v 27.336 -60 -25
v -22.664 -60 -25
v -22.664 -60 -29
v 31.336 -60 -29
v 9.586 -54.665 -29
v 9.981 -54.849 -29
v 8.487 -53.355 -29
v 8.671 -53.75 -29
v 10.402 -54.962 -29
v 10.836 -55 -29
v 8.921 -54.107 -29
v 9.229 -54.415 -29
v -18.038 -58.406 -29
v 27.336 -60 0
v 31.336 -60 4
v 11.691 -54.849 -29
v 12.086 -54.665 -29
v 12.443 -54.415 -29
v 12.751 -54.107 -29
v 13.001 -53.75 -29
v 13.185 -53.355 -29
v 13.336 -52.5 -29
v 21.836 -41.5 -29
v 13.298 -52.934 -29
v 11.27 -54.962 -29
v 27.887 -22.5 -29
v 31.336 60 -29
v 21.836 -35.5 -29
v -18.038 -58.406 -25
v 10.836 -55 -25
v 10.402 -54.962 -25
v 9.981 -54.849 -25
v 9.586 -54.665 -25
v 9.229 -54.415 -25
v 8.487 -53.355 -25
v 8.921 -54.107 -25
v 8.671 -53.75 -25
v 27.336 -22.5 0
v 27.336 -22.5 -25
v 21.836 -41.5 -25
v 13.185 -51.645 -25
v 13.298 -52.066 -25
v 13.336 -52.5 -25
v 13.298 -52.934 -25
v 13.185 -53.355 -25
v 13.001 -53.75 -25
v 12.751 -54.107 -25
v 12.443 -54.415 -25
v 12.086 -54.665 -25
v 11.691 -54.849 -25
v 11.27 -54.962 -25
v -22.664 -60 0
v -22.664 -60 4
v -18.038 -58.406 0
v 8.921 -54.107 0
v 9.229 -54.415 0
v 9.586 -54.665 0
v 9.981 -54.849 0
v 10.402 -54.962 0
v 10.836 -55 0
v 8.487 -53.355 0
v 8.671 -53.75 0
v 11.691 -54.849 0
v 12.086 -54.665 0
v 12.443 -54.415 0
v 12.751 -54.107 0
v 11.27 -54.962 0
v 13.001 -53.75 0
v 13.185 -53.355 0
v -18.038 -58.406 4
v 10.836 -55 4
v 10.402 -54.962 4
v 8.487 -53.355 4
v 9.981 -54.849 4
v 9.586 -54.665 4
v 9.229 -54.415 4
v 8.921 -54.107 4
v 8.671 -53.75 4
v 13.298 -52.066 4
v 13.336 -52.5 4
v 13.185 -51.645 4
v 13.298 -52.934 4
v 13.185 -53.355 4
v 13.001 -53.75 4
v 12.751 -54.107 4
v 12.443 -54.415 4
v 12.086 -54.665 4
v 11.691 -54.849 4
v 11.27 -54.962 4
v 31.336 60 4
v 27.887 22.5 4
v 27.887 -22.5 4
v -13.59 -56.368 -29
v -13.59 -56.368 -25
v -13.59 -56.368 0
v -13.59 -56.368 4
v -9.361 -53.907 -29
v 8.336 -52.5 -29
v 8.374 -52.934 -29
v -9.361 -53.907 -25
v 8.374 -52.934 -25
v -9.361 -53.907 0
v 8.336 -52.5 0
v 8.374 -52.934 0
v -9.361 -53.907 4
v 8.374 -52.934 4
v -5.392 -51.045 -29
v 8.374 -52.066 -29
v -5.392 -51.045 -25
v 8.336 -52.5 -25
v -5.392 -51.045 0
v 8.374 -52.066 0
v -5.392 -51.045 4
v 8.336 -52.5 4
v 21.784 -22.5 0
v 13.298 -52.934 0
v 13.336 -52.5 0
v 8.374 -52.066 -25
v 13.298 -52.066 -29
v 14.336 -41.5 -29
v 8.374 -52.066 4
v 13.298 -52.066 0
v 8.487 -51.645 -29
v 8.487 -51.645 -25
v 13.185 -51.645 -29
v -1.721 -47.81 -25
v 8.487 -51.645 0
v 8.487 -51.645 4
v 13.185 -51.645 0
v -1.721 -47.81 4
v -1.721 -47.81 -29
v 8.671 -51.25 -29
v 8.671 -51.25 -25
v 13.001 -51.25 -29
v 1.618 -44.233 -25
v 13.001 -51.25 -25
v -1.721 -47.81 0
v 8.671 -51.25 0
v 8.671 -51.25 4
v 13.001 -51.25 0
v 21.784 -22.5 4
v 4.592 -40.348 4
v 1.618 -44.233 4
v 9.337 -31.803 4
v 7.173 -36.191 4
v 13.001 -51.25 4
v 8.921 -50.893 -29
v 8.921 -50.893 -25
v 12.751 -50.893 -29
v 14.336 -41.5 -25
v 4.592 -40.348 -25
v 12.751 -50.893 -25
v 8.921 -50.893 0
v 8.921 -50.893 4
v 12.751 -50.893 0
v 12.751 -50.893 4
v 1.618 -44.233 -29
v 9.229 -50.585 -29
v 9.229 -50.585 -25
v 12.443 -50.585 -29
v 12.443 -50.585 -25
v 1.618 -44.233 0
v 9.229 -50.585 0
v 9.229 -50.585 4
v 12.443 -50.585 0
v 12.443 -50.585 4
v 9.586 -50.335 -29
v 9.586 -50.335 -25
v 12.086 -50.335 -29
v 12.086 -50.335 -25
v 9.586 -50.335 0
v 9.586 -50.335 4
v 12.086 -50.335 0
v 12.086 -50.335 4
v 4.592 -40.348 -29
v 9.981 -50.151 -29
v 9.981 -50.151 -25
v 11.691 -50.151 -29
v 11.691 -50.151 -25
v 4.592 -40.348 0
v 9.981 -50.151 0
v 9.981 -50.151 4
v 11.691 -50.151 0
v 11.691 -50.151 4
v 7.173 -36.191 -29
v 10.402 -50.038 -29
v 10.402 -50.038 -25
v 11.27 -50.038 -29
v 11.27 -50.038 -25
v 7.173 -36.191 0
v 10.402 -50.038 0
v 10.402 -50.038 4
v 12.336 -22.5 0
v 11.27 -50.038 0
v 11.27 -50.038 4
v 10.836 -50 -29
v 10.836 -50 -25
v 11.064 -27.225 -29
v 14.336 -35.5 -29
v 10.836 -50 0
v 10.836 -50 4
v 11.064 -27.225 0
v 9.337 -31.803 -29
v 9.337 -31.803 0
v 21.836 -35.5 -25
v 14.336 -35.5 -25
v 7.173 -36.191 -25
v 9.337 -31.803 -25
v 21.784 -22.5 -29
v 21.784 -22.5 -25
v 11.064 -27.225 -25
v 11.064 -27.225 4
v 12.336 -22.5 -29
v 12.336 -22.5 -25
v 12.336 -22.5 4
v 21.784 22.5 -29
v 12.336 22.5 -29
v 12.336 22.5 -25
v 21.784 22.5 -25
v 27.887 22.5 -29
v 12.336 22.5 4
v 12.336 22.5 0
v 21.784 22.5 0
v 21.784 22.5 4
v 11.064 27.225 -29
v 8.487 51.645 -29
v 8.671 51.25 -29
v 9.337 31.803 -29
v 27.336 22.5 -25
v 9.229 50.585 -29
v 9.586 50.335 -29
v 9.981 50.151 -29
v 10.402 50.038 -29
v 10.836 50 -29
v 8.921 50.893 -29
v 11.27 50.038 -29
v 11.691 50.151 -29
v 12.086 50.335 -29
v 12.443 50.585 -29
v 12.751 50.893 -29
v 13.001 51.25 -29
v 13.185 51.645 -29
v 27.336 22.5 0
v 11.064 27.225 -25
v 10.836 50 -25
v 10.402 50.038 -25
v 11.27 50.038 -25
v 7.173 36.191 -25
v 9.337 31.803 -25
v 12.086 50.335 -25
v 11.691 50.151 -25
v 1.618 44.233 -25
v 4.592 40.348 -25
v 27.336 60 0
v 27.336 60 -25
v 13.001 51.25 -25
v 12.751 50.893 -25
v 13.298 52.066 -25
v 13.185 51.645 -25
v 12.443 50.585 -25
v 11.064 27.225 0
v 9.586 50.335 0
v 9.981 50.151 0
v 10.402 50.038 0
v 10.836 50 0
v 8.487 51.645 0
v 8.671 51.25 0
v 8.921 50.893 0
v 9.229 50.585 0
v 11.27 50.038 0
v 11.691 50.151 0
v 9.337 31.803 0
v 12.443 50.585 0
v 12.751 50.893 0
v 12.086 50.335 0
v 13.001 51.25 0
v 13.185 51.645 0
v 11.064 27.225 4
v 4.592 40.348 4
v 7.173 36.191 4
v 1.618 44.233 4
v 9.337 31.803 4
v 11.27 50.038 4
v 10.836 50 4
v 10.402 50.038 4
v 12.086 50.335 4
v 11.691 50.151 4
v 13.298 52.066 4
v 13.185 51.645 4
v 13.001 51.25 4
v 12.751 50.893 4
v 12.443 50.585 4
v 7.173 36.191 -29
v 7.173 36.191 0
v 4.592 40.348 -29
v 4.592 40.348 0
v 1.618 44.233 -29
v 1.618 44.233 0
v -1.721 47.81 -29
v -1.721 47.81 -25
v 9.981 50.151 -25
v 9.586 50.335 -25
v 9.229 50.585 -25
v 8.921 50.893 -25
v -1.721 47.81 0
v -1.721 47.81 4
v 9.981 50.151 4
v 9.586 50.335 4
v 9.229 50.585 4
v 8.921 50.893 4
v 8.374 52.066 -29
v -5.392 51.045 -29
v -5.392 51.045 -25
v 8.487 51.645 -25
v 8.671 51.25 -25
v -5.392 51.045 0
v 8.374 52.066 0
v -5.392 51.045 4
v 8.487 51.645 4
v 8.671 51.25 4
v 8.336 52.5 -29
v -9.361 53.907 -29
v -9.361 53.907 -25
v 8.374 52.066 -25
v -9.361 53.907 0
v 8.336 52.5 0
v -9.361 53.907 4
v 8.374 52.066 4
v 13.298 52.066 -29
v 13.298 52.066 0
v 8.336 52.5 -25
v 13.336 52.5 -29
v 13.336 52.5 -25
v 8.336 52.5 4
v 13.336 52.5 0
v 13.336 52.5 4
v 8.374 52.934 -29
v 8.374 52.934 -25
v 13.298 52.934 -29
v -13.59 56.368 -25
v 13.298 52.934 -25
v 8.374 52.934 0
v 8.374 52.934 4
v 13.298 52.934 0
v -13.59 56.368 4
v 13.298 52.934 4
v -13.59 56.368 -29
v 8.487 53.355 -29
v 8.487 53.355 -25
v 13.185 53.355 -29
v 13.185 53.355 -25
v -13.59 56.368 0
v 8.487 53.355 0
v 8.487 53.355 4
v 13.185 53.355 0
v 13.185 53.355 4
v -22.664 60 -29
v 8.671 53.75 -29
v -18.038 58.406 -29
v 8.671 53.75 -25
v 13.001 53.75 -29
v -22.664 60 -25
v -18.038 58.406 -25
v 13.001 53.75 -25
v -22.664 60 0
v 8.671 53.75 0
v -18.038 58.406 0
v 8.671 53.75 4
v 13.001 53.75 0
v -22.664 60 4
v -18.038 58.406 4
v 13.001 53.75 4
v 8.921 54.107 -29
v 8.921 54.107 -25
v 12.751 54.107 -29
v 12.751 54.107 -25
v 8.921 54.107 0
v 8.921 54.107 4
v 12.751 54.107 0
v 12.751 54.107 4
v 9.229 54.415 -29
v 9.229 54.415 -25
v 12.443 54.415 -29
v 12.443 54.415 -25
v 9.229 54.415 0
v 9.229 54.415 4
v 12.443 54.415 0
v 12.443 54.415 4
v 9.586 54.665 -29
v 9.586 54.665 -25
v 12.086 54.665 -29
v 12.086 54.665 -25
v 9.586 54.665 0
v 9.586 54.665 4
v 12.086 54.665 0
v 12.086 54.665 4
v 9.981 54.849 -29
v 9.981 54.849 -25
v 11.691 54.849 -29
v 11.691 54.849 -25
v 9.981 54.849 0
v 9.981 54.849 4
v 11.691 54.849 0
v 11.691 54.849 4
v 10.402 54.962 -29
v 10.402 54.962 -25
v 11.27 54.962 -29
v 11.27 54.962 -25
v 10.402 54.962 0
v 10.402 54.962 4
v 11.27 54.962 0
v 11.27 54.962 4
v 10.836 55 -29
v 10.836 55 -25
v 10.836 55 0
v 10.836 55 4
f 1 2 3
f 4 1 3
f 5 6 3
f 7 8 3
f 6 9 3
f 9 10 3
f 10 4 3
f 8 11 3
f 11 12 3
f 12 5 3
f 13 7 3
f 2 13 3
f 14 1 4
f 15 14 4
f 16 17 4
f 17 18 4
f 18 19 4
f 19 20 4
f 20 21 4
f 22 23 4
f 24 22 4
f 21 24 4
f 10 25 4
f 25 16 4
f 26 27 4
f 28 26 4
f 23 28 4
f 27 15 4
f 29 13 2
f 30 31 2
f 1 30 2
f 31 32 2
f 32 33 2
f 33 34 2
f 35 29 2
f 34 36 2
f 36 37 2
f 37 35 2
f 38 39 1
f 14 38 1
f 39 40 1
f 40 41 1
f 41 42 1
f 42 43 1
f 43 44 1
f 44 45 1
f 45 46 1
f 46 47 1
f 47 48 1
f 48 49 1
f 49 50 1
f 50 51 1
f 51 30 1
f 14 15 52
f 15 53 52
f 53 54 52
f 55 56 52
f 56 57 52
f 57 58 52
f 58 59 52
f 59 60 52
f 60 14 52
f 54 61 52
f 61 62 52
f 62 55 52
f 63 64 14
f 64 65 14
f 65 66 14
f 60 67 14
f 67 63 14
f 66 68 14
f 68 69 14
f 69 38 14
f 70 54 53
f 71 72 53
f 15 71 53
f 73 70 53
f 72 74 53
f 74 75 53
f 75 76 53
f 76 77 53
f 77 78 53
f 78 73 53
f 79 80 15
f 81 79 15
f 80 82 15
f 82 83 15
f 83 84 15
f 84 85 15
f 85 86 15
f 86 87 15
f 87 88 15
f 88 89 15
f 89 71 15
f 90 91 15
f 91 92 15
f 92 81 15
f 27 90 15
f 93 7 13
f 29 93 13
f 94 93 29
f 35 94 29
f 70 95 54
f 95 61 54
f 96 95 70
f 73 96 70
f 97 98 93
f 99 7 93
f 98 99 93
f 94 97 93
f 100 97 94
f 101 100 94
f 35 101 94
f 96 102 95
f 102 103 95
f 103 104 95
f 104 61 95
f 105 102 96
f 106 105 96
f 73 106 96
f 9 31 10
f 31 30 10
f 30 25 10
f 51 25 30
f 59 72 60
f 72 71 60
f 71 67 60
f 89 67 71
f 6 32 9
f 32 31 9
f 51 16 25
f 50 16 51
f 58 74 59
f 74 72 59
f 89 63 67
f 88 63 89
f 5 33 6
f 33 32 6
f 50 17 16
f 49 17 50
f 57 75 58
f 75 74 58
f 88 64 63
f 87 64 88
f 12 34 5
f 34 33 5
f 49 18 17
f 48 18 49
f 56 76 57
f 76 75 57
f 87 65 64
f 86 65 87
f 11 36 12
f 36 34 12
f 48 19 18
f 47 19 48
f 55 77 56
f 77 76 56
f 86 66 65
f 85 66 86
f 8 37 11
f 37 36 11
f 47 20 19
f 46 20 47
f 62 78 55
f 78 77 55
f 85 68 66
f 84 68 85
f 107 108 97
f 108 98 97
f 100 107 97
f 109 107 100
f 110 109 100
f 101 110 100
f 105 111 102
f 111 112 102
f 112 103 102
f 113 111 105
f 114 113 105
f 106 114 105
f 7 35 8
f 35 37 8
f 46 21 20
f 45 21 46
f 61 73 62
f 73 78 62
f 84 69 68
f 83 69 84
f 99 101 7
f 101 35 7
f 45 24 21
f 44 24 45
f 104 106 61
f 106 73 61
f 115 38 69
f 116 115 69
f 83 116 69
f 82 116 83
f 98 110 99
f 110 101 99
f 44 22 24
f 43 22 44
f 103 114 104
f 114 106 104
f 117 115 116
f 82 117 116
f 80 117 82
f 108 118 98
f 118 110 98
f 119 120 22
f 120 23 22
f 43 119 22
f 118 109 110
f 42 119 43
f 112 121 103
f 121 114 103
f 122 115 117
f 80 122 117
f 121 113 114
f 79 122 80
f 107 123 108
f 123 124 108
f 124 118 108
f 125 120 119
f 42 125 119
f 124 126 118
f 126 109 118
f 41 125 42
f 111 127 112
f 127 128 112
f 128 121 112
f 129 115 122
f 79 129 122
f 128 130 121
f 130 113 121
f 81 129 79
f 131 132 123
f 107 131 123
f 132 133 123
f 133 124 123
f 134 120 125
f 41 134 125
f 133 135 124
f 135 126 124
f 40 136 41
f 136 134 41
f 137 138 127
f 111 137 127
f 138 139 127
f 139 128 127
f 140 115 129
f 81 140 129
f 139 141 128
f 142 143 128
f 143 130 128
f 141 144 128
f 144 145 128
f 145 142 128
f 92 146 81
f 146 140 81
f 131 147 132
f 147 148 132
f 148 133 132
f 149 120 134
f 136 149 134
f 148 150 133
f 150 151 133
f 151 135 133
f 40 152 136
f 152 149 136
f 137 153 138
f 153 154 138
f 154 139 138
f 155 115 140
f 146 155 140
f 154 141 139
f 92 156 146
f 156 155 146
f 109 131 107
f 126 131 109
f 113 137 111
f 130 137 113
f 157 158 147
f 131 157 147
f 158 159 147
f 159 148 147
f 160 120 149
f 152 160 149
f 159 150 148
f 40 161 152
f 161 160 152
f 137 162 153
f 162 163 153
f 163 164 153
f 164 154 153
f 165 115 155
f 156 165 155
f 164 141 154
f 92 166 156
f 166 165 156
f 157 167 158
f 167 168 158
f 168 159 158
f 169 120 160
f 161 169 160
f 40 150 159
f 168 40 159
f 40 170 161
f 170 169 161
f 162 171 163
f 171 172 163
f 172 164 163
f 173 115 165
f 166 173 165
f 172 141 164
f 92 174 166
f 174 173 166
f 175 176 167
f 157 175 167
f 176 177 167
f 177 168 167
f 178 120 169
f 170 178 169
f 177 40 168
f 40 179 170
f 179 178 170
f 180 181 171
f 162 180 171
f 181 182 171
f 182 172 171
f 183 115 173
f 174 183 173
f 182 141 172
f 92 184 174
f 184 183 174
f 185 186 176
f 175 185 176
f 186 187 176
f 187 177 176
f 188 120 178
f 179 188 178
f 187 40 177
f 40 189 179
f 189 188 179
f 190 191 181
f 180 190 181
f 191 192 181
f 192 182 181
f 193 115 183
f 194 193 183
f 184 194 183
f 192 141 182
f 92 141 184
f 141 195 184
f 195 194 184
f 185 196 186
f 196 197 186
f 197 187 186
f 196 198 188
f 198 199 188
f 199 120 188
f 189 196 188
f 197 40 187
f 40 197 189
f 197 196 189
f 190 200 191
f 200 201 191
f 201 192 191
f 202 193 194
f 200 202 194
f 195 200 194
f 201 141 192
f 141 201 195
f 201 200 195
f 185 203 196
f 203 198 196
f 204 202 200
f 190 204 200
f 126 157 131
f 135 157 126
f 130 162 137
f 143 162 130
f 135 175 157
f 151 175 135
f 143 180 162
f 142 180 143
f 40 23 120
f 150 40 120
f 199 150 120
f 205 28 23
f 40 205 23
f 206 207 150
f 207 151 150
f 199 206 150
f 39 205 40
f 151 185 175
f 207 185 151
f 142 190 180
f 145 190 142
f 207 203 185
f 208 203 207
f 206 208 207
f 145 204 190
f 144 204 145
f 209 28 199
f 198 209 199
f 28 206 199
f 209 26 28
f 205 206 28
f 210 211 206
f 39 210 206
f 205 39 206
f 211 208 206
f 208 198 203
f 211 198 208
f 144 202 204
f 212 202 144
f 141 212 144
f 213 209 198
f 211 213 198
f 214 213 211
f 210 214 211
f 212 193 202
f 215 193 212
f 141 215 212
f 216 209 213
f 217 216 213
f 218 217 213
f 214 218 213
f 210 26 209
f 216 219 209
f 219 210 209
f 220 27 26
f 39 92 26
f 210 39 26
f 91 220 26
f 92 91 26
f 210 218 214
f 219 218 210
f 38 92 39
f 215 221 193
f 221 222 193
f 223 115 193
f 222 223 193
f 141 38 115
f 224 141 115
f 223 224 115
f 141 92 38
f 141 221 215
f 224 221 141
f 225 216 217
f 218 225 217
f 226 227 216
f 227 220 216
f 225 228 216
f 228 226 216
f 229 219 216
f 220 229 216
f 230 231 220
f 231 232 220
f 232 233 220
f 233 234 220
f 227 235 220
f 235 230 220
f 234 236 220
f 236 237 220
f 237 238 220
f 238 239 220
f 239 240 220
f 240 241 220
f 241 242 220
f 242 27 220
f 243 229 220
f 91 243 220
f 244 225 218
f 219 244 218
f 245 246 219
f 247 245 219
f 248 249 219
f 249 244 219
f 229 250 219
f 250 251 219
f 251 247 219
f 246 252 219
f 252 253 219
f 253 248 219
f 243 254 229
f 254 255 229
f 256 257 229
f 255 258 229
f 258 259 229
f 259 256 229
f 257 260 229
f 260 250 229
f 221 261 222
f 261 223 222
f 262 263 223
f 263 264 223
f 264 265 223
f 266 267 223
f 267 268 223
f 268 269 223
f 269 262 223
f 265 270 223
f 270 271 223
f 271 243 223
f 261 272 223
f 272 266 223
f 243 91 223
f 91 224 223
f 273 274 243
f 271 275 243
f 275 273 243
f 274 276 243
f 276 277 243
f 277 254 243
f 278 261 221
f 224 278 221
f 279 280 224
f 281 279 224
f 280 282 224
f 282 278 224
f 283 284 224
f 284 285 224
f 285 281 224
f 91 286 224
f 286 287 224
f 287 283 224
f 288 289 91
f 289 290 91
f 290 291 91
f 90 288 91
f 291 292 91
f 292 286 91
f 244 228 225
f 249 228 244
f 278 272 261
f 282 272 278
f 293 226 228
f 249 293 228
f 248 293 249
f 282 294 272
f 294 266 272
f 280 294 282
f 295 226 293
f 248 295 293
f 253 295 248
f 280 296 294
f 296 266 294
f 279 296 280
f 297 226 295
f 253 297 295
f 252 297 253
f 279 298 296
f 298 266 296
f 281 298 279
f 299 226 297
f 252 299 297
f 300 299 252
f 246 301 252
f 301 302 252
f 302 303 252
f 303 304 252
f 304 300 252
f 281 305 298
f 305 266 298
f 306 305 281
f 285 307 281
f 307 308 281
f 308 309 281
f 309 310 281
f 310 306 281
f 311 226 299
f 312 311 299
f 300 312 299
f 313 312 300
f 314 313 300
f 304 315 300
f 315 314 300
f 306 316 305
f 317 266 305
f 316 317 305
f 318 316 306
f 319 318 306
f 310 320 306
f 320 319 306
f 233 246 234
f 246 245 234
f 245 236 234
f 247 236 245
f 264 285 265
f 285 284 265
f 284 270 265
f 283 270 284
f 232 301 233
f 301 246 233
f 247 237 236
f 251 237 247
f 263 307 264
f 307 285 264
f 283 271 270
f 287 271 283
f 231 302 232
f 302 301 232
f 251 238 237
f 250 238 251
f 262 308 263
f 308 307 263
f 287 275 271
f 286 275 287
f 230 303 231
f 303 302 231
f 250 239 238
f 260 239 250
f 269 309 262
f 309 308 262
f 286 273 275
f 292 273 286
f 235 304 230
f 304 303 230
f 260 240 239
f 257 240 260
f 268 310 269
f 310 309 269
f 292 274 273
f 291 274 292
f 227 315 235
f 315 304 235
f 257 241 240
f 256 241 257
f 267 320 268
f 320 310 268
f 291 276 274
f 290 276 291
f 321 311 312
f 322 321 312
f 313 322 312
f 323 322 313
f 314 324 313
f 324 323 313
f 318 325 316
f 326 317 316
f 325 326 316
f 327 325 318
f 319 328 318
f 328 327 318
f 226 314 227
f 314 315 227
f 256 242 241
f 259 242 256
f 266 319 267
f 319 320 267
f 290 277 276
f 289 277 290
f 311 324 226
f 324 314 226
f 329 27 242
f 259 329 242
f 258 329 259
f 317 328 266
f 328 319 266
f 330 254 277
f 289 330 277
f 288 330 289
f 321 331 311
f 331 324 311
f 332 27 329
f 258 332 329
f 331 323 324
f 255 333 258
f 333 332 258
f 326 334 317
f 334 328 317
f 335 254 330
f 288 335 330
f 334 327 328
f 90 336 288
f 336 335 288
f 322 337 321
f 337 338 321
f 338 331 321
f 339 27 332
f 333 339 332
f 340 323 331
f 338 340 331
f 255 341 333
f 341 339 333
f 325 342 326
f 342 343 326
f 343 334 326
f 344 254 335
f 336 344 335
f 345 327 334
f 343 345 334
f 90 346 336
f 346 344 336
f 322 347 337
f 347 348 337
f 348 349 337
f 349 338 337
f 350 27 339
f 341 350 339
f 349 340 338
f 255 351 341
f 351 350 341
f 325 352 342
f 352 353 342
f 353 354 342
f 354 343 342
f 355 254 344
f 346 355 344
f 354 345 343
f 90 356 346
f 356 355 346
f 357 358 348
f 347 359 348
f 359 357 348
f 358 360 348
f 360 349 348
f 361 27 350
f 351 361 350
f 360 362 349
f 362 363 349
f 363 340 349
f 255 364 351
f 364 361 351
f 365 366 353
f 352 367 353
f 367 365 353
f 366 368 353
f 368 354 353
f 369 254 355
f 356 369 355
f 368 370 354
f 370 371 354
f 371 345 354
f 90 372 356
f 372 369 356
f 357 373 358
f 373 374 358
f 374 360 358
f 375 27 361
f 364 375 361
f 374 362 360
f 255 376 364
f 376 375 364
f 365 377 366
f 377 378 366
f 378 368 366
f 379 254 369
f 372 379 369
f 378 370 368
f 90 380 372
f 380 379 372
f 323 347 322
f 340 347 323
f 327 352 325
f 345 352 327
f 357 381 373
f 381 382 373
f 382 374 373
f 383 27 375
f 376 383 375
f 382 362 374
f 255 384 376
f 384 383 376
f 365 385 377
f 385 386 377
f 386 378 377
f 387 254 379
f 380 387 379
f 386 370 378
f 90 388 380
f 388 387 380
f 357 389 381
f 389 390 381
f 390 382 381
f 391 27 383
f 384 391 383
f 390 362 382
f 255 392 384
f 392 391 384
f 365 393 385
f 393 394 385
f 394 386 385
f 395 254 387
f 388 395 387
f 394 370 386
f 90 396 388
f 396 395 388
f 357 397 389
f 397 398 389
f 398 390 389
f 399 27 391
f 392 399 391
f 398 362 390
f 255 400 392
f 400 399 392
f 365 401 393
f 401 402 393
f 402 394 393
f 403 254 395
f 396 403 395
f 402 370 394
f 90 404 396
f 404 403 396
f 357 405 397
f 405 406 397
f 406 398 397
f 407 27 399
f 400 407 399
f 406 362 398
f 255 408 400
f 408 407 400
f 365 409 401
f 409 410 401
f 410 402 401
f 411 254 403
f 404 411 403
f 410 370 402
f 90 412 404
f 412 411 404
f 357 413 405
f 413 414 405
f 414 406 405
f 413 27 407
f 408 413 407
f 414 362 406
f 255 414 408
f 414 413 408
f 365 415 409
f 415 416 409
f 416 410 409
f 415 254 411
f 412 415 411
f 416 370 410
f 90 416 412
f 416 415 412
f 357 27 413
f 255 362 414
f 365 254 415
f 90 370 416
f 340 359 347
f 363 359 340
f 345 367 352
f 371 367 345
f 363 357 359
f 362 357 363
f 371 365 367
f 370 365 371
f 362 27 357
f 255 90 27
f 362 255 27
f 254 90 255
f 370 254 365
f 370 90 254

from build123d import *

# Parameters (mm, degrees)
SKETCH3_W           = 13
SKETCH3_H           = 120
BOSS_EXTRUDE1_DEPTH = 4
SKETCH11_W          = 33
SKETCH11_H          = 120
BOSS_EXTRUDE4_DEPTH = 4
SKETCH12_R          = 2.5
CUT_EXTRUDE3_DEPTH  = 76.305579191
SKETCH13_W          = 6.102814475
SKETCH13_H          = 45
CUT_EXTRUDE4_DEPTH  = 76.305579191
SKETCH15_W          = 7.5
SKETCH15_H          = 6
CUT_EXTRUDE5_DEPTH  = 74.640547644


with BuildPart() as part:
    # Sketch3 → Boss-Extrude1 (new body)
    with BuildSketch(Plane.XY):
        with Locations((20.835766423, 0)):
            Rectangle(SKETCH3_W, SKETCH3_H)
        with BuildLine():
            Line((14.335766423, 0), (14.335766423, 60))
            Line((14.335766423, 60), (-22.664233577, 60))
            ThreePointArc((-22.664233577, 60), (-0.008037132, 46.062450015), (12.335766423, 22.5))
            Line((12.335766423, 22.5), (12.335766423, 0))
            Line((12.335766423, 0), (14.335766423, 0))
        make_face()
        with BuildLine():
            Line((14.335766423, -60), (14.335766423, 0))
            Line((14.335766423, 0), (12.335766423, 0))
            Line((12.335766423, 0), (12.335766423, -22.5))
            ThreePointArc((12.335766423, -22.5), (-0.008037132, -46.062450015), (-22.664233577, -60))
            Line((-22.664233577, -60), (14.335766423, -60))
        make_face()
    extrude(amount=BOSS_EXTRUDE1_DEPTH)


with BuildPart() as body_2:
    # Mirror4: mirrored copy
    add(part.part.mirror(Plane.XY.offset(-12.5)))


with BuildPart() as part_1:
    add(part.part)

    add(body_2.part)  # Boss-Extrude4 merges body 2
    # Sketch11 → Boss-Extrude4 (add)
    with BuildSketch(Plane(origin=(27.335766423, 0, 0), x_dir=(0, 0, -1), z_dir=(1, 0, 0))):
        with Locations((12.5, 0)):
            Rectangle(SKETCH11_W, SKETCH11_H)
    extrude(amount=BOSS_EXTRUDE4_DEPTH)

    # Sketch12 → Cut-Extrude3 (cut, through all)
    with BuildSketch(Plane.XY.offset(4)):
        with Locations((10.835766423, 52.5)):
            Circle(SKETCH12_R)
    cut_extrude3 = extrude(amount=-CUT_EXTRUDE3_DEPTH, mode=Mode.SUBTRACT)

    # Mirror5: Cut-Extrude3 across plane
    add(cut_extrude3.mirror(Plane.ZX), mode=Mode.SUBTRACT)

    # Sketch13 → Cut-Extrude4 (cut, through all)
    with BuildSketch(Plane.XY.offset(4)):
        with Locations((24.835766424, 0)):
            Rectangle(SKETCH13_W, SKETCH13_H)
    extrude(amount=-CUT_EXTRUDE4_DEPTH, mode=Mode.SUBTRACT)

    # Sketch15 → Cut-Extrude5 (cut, through all)
    with BuildSketch(Plane.XY.offset(-25)):
        with Locations((18.085766423, -38.5)):
            Rectangle(SKETCH15_W, SKETCH15_H)
    extrude(amount=-CUT_EXTRUDE5_DEPTH, mode=Mode.SUBTRACT)


solid = part_1.part
